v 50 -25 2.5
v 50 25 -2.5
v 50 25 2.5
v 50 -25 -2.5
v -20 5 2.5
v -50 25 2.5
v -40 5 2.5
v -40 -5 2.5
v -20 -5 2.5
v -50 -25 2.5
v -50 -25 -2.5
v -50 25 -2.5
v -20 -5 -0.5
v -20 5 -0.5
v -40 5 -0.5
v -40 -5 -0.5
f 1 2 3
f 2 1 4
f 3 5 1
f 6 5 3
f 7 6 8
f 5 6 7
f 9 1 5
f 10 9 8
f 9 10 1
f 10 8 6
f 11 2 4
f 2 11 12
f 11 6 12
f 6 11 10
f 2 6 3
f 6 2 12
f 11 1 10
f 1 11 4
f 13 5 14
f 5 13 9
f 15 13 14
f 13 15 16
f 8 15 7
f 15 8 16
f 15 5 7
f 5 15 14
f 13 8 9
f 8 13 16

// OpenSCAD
// Parameters for the flat rectangular plate with slot
plate_length = 100;  // Length of the plate
plate_width = 50;    // Width of the plate
plate_thickness = 5; // Thickness of the plate
slot_length = 20;    // Length of the slot
slot_width = 10;     // Width of the slot
slot_offset = 10;    // Distance of the slot from the shorter edge

// Module to create the flat rectangular plate with slot
module flat_rectangular_plate_with_slot() {
    // Create the main rectangular plate
    difference() {
        cube([plate_length, plate_width, plate_thickness], center = true);
        
        // Create the slot
        translate([slot_offset - plate_length / 2 + slot_length / 2, 0, plate_thickness / 2])
            cube([slot_length, slot_width, plate_thickness + 1], center = true);
    }
}

// Render the model
flat_rectangular_plate_with_slot();
